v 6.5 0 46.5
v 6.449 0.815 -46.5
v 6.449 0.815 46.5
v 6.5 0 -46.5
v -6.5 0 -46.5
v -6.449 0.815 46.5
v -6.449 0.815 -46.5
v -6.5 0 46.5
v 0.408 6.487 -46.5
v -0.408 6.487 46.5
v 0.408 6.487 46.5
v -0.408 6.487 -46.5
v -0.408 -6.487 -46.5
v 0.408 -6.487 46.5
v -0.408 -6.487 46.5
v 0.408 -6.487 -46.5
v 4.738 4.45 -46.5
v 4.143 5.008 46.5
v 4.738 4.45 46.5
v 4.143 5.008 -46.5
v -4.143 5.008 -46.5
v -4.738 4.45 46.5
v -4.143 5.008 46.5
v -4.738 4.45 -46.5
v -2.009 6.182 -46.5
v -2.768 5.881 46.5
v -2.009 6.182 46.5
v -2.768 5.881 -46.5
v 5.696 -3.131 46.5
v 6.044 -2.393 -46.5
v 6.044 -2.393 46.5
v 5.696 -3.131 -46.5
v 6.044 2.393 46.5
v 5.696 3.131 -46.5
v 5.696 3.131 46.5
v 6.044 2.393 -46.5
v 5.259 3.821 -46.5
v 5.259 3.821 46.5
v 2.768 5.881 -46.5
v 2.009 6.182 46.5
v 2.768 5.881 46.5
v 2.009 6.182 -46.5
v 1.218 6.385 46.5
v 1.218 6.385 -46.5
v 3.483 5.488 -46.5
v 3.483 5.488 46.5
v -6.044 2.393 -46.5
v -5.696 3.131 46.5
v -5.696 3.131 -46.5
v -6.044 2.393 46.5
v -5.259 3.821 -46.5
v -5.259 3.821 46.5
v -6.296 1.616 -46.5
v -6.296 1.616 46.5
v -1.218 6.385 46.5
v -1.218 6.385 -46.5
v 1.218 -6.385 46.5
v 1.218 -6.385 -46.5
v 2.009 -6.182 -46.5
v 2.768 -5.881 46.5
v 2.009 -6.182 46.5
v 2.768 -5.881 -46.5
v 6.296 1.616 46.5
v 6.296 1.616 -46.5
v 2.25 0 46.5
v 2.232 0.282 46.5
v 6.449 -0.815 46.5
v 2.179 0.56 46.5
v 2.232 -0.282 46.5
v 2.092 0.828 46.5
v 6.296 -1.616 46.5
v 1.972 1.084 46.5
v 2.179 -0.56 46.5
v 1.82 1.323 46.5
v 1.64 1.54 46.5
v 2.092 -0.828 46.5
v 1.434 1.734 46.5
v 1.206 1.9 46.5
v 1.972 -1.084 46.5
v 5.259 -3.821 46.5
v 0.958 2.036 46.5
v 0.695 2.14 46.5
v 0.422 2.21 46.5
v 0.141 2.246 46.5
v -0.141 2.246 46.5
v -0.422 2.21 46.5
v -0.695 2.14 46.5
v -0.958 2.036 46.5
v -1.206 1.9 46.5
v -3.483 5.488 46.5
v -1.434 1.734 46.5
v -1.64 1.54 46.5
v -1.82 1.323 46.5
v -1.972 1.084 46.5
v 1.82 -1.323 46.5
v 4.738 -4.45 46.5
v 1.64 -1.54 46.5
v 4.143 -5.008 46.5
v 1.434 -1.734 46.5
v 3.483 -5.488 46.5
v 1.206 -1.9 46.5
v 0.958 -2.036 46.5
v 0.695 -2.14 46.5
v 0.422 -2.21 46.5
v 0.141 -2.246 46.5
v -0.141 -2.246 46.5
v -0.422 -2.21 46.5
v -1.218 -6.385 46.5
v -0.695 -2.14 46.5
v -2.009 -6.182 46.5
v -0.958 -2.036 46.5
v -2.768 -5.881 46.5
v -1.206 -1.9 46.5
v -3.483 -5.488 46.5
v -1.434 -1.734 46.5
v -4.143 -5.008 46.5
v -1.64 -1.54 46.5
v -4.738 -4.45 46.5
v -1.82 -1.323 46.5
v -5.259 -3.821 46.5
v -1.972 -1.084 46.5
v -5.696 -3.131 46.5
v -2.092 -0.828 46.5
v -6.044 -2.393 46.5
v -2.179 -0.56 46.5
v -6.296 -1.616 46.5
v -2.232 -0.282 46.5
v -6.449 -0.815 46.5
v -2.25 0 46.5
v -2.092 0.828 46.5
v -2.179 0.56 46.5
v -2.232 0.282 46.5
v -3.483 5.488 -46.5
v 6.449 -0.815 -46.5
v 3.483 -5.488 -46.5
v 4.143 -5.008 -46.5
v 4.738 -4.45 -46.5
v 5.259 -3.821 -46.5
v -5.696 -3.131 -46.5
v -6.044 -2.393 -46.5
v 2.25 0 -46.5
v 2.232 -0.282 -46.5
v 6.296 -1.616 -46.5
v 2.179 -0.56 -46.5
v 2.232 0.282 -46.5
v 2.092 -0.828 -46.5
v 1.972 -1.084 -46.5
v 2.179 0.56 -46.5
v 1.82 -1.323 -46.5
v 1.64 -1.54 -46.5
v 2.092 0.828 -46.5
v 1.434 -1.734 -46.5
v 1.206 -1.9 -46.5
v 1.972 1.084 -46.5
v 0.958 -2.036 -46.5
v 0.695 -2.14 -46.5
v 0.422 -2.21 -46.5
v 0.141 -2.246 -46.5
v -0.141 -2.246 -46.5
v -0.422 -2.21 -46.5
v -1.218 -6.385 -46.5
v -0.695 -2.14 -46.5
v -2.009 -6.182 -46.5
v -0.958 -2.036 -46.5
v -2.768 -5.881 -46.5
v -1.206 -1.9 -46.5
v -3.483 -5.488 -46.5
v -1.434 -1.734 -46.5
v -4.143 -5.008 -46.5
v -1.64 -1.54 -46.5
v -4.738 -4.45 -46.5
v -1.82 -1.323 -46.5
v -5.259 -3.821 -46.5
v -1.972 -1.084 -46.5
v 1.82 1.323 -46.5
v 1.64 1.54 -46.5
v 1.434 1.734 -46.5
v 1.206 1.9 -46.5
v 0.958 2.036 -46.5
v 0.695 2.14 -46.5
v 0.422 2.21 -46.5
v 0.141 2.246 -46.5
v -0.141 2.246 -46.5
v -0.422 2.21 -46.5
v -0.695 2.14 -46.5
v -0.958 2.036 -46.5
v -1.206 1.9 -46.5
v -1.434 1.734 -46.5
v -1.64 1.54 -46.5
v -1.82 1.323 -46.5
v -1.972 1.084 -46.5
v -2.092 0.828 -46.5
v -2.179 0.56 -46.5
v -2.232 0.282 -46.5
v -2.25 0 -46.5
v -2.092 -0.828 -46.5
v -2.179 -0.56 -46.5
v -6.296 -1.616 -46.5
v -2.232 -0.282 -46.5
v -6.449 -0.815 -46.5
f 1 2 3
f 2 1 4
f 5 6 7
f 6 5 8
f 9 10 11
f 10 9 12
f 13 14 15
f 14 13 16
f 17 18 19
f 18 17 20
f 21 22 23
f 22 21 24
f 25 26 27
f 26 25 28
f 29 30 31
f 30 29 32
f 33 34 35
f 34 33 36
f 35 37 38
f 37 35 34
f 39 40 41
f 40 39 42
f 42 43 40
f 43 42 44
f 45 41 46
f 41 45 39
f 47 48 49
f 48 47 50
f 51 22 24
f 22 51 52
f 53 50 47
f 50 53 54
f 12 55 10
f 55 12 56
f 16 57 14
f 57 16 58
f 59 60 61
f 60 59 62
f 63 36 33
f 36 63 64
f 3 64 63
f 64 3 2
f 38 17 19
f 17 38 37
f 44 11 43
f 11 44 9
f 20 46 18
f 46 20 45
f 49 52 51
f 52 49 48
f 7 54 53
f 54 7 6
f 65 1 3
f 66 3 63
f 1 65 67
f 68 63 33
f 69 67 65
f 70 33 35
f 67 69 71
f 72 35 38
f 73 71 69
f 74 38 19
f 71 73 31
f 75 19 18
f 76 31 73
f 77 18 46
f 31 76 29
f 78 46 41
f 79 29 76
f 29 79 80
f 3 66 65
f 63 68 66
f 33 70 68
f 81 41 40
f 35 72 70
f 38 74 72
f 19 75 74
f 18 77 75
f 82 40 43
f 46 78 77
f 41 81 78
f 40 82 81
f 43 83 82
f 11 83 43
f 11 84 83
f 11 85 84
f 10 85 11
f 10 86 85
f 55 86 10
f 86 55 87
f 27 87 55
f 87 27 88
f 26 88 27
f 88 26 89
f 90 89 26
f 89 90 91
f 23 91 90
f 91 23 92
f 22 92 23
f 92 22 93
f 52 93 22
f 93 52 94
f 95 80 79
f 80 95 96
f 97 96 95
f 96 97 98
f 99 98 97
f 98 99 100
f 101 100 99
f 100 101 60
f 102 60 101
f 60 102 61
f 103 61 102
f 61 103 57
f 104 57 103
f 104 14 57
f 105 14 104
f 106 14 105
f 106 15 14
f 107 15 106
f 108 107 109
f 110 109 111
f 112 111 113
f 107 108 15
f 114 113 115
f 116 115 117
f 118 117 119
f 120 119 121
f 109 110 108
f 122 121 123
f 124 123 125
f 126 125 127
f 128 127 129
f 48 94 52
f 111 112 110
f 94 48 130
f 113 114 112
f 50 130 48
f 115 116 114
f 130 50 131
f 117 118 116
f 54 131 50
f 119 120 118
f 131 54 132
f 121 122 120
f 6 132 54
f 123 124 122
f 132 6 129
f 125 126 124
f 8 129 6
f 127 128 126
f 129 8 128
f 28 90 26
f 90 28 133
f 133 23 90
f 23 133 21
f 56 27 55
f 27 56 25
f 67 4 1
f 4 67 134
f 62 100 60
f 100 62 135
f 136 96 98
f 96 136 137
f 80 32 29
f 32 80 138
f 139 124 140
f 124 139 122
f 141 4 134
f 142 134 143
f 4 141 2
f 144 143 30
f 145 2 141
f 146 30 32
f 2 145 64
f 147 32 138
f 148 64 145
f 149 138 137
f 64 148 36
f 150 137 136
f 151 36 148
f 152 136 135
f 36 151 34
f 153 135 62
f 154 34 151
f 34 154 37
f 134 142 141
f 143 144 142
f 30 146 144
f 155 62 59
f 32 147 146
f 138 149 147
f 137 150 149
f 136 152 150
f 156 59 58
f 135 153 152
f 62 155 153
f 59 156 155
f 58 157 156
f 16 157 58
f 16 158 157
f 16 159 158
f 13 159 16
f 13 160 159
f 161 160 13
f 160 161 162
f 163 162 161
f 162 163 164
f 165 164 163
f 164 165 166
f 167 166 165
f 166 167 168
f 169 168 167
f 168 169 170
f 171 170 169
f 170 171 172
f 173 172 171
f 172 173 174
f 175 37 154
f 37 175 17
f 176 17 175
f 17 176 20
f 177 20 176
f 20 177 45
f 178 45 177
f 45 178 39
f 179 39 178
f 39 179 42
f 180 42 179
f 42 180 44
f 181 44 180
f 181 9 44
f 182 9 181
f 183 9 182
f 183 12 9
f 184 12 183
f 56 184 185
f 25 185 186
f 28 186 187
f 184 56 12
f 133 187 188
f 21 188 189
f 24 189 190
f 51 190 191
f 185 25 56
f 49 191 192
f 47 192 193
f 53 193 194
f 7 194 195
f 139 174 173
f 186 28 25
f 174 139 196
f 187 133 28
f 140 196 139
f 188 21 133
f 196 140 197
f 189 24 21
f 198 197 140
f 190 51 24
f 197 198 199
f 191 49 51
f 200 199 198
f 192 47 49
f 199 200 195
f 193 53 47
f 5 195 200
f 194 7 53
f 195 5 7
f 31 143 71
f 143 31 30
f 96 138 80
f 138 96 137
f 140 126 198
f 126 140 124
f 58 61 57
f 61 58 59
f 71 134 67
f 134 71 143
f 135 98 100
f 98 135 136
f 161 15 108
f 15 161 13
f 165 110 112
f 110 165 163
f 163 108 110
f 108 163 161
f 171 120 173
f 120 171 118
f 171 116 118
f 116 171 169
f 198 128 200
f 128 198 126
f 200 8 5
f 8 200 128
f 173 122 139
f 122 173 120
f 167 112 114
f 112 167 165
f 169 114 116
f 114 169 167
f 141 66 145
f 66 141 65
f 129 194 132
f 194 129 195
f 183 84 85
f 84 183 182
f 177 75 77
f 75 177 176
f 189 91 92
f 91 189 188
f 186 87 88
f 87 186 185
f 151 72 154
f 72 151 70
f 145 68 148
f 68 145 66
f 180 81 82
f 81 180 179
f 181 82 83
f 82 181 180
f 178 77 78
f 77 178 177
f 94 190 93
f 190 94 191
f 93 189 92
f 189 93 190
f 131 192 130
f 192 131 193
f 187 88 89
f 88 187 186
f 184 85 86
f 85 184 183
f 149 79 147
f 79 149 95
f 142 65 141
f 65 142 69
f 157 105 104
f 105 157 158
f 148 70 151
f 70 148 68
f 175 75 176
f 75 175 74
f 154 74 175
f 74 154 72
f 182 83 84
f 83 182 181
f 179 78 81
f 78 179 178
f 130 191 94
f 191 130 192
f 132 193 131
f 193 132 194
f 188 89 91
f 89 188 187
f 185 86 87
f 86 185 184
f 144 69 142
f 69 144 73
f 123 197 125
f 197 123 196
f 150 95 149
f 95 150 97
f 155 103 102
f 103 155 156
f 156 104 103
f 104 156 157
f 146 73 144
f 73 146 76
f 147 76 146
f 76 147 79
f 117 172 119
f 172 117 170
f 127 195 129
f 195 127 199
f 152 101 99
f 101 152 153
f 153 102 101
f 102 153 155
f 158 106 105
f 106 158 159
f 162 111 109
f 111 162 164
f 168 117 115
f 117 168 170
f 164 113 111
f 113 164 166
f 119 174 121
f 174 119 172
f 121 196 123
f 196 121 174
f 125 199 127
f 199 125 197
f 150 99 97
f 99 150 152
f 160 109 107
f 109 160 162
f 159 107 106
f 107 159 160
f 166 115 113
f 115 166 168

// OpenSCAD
$fn = 50;


difference() {
	union() {
		translate(v = [0, 0, -46.5000000000]) {
			cylinder(h = 93, r = 6.5000000000);
		}
	}
	union() {
		translate(v = [0, 0, -100.0000000000]) {
			cylinder(h = 200, r = 2.2500000000);
		}
	}
}
